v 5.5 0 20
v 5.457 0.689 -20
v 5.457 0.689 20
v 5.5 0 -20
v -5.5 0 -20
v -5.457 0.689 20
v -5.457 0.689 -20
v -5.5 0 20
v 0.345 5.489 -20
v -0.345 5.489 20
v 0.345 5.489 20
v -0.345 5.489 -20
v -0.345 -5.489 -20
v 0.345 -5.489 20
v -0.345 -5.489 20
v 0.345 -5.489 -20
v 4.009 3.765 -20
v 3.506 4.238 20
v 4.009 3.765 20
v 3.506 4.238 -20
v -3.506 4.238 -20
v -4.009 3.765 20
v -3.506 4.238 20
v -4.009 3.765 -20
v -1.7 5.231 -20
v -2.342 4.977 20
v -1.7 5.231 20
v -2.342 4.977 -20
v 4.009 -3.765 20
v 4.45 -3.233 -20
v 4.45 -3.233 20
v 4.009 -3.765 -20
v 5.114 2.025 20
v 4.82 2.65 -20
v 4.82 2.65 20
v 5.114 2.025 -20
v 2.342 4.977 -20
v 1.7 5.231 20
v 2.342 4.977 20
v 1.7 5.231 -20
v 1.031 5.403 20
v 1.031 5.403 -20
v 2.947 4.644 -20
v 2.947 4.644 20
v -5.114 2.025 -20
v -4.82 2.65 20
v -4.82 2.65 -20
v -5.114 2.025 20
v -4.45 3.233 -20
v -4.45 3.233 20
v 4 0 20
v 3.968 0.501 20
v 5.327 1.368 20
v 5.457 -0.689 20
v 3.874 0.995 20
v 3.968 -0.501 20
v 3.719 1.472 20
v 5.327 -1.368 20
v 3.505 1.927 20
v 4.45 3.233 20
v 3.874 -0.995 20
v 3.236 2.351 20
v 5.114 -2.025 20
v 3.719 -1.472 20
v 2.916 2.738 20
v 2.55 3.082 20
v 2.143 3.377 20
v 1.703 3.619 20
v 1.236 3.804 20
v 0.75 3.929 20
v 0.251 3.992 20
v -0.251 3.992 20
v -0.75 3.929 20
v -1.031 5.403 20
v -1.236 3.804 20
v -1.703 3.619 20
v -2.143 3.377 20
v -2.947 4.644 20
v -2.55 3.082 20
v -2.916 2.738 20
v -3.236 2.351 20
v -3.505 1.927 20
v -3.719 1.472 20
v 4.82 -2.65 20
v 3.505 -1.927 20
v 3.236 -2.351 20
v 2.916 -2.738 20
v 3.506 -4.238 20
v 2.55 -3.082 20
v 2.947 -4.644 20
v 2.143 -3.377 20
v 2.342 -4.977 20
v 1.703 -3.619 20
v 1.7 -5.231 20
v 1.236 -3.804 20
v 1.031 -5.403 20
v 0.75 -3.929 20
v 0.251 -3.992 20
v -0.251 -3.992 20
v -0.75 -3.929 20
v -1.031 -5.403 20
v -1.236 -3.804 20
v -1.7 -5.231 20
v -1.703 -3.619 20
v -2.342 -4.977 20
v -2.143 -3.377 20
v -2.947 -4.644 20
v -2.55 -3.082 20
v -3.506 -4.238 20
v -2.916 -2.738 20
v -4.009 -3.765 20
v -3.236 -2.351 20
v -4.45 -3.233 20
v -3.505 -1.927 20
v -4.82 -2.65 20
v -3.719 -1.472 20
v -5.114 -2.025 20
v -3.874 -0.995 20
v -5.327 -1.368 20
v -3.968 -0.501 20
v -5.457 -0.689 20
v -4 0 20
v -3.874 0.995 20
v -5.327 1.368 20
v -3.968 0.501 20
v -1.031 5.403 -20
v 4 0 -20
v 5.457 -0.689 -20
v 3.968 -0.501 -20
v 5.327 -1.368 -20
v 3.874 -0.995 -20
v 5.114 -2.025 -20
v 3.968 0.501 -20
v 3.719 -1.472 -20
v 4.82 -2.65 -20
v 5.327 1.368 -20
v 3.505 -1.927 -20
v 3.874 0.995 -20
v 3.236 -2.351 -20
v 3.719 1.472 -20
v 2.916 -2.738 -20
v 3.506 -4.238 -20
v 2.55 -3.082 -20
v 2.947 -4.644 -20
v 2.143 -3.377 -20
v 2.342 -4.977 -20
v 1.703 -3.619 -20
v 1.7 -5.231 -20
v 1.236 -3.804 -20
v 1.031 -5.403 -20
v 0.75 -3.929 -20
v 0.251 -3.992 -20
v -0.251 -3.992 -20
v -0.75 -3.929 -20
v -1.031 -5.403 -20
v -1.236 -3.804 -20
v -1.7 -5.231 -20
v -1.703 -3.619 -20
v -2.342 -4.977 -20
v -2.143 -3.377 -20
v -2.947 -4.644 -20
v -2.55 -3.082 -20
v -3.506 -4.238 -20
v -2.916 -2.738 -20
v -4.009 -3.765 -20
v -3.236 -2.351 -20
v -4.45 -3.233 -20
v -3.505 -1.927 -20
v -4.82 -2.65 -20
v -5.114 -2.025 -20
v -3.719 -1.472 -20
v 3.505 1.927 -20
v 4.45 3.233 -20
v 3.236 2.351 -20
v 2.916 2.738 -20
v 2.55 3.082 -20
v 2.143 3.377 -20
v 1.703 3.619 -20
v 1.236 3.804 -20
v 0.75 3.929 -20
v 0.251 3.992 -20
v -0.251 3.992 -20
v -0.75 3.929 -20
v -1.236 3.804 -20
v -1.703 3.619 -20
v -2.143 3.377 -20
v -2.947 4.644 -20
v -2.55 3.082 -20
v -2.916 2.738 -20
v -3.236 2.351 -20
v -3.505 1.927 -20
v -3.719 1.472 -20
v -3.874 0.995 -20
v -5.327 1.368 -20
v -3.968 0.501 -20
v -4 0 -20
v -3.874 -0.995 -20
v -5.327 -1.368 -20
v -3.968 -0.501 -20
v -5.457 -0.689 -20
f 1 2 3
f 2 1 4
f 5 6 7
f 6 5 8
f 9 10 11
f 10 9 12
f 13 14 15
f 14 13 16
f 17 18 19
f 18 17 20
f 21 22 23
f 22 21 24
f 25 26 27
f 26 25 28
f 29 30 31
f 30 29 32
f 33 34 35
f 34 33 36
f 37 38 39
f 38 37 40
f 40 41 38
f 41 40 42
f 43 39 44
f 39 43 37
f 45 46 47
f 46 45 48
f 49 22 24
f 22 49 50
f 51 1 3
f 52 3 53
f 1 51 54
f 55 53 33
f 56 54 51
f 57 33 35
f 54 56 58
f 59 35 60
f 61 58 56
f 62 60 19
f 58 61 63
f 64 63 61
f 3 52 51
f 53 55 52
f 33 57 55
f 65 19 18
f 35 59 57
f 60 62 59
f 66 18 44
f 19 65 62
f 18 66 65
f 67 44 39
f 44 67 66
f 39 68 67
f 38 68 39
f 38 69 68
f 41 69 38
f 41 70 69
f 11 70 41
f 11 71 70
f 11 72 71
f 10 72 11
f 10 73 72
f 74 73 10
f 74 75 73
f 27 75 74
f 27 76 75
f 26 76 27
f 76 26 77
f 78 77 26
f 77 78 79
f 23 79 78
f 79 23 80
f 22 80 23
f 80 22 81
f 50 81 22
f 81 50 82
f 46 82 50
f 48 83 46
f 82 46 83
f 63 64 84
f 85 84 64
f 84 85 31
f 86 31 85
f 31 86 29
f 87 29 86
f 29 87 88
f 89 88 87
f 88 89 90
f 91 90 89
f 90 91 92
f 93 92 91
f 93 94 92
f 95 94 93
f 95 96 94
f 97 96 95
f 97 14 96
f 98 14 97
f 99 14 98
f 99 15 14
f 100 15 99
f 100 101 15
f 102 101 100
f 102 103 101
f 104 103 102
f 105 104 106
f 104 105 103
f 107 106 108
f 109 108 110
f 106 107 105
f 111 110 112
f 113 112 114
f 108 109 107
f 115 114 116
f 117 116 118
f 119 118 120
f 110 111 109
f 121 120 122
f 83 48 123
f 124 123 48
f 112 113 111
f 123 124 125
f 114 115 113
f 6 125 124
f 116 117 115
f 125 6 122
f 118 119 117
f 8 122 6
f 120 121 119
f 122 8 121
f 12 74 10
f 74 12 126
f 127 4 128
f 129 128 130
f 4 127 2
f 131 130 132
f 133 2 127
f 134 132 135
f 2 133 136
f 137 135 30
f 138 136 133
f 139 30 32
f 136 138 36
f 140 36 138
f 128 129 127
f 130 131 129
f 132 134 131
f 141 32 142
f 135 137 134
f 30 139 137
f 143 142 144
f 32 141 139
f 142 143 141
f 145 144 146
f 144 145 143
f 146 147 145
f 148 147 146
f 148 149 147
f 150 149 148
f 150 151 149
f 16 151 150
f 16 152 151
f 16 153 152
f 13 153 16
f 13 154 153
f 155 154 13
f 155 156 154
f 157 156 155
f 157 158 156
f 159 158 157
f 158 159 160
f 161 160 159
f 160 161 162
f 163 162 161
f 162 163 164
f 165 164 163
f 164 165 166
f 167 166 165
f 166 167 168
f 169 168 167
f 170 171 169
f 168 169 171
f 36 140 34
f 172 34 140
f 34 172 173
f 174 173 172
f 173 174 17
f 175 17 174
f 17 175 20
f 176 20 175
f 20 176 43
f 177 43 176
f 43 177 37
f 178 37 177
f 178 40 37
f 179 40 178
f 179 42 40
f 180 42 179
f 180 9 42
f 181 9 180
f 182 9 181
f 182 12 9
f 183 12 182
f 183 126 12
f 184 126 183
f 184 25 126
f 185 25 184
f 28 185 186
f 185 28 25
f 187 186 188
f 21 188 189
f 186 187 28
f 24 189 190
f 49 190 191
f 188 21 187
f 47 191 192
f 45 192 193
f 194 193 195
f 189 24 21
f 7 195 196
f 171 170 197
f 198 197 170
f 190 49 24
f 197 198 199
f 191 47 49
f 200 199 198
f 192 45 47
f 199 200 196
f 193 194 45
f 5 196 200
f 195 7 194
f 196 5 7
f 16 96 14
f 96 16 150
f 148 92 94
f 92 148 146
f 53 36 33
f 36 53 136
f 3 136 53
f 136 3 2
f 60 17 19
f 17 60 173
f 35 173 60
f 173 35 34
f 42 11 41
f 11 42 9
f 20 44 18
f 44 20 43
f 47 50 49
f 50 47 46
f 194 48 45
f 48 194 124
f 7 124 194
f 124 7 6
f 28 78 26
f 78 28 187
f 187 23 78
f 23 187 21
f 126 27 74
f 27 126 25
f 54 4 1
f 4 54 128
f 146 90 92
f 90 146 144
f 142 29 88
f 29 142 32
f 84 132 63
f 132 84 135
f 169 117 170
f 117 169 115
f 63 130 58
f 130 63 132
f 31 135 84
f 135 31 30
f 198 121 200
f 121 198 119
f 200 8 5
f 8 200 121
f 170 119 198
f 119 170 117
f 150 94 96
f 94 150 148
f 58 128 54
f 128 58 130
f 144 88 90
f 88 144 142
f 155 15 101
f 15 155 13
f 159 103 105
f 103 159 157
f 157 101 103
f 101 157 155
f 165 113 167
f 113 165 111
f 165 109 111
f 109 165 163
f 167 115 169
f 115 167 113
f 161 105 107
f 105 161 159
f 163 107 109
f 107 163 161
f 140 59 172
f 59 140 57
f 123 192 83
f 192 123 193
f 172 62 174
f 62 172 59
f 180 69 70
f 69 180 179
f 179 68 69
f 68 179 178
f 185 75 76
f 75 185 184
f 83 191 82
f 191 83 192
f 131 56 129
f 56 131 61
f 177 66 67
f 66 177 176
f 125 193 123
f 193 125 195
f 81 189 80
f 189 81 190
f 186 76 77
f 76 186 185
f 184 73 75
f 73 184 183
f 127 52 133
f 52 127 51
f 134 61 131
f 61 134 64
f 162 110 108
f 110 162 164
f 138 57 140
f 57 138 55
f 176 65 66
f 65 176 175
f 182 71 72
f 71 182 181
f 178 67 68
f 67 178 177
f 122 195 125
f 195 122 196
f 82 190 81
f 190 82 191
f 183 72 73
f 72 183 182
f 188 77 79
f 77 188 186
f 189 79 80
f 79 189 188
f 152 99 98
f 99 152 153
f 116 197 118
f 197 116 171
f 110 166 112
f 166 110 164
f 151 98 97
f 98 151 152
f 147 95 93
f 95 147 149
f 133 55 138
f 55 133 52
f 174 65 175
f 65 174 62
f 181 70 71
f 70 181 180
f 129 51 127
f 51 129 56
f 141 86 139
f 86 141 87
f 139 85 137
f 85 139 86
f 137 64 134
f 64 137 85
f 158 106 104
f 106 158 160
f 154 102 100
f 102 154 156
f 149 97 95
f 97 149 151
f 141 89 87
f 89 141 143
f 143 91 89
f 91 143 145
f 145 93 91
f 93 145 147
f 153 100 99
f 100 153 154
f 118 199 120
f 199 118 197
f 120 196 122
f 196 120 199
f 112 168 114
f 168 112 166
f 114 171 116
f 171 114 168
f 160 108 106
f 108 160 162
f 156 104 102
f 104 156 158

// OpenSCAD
$fn = 50;


difference() {
	union() {
		translate(v = [0, 0, -20.0000000000]) {
			cylinder(h = 40, r = 5.5000000000);
		}
	}
	union() {
		translate(v = [0, 0, -100.0000000000]) {
			cylinder(h = 200, r = 4.0000000000);
		}
	}
}
